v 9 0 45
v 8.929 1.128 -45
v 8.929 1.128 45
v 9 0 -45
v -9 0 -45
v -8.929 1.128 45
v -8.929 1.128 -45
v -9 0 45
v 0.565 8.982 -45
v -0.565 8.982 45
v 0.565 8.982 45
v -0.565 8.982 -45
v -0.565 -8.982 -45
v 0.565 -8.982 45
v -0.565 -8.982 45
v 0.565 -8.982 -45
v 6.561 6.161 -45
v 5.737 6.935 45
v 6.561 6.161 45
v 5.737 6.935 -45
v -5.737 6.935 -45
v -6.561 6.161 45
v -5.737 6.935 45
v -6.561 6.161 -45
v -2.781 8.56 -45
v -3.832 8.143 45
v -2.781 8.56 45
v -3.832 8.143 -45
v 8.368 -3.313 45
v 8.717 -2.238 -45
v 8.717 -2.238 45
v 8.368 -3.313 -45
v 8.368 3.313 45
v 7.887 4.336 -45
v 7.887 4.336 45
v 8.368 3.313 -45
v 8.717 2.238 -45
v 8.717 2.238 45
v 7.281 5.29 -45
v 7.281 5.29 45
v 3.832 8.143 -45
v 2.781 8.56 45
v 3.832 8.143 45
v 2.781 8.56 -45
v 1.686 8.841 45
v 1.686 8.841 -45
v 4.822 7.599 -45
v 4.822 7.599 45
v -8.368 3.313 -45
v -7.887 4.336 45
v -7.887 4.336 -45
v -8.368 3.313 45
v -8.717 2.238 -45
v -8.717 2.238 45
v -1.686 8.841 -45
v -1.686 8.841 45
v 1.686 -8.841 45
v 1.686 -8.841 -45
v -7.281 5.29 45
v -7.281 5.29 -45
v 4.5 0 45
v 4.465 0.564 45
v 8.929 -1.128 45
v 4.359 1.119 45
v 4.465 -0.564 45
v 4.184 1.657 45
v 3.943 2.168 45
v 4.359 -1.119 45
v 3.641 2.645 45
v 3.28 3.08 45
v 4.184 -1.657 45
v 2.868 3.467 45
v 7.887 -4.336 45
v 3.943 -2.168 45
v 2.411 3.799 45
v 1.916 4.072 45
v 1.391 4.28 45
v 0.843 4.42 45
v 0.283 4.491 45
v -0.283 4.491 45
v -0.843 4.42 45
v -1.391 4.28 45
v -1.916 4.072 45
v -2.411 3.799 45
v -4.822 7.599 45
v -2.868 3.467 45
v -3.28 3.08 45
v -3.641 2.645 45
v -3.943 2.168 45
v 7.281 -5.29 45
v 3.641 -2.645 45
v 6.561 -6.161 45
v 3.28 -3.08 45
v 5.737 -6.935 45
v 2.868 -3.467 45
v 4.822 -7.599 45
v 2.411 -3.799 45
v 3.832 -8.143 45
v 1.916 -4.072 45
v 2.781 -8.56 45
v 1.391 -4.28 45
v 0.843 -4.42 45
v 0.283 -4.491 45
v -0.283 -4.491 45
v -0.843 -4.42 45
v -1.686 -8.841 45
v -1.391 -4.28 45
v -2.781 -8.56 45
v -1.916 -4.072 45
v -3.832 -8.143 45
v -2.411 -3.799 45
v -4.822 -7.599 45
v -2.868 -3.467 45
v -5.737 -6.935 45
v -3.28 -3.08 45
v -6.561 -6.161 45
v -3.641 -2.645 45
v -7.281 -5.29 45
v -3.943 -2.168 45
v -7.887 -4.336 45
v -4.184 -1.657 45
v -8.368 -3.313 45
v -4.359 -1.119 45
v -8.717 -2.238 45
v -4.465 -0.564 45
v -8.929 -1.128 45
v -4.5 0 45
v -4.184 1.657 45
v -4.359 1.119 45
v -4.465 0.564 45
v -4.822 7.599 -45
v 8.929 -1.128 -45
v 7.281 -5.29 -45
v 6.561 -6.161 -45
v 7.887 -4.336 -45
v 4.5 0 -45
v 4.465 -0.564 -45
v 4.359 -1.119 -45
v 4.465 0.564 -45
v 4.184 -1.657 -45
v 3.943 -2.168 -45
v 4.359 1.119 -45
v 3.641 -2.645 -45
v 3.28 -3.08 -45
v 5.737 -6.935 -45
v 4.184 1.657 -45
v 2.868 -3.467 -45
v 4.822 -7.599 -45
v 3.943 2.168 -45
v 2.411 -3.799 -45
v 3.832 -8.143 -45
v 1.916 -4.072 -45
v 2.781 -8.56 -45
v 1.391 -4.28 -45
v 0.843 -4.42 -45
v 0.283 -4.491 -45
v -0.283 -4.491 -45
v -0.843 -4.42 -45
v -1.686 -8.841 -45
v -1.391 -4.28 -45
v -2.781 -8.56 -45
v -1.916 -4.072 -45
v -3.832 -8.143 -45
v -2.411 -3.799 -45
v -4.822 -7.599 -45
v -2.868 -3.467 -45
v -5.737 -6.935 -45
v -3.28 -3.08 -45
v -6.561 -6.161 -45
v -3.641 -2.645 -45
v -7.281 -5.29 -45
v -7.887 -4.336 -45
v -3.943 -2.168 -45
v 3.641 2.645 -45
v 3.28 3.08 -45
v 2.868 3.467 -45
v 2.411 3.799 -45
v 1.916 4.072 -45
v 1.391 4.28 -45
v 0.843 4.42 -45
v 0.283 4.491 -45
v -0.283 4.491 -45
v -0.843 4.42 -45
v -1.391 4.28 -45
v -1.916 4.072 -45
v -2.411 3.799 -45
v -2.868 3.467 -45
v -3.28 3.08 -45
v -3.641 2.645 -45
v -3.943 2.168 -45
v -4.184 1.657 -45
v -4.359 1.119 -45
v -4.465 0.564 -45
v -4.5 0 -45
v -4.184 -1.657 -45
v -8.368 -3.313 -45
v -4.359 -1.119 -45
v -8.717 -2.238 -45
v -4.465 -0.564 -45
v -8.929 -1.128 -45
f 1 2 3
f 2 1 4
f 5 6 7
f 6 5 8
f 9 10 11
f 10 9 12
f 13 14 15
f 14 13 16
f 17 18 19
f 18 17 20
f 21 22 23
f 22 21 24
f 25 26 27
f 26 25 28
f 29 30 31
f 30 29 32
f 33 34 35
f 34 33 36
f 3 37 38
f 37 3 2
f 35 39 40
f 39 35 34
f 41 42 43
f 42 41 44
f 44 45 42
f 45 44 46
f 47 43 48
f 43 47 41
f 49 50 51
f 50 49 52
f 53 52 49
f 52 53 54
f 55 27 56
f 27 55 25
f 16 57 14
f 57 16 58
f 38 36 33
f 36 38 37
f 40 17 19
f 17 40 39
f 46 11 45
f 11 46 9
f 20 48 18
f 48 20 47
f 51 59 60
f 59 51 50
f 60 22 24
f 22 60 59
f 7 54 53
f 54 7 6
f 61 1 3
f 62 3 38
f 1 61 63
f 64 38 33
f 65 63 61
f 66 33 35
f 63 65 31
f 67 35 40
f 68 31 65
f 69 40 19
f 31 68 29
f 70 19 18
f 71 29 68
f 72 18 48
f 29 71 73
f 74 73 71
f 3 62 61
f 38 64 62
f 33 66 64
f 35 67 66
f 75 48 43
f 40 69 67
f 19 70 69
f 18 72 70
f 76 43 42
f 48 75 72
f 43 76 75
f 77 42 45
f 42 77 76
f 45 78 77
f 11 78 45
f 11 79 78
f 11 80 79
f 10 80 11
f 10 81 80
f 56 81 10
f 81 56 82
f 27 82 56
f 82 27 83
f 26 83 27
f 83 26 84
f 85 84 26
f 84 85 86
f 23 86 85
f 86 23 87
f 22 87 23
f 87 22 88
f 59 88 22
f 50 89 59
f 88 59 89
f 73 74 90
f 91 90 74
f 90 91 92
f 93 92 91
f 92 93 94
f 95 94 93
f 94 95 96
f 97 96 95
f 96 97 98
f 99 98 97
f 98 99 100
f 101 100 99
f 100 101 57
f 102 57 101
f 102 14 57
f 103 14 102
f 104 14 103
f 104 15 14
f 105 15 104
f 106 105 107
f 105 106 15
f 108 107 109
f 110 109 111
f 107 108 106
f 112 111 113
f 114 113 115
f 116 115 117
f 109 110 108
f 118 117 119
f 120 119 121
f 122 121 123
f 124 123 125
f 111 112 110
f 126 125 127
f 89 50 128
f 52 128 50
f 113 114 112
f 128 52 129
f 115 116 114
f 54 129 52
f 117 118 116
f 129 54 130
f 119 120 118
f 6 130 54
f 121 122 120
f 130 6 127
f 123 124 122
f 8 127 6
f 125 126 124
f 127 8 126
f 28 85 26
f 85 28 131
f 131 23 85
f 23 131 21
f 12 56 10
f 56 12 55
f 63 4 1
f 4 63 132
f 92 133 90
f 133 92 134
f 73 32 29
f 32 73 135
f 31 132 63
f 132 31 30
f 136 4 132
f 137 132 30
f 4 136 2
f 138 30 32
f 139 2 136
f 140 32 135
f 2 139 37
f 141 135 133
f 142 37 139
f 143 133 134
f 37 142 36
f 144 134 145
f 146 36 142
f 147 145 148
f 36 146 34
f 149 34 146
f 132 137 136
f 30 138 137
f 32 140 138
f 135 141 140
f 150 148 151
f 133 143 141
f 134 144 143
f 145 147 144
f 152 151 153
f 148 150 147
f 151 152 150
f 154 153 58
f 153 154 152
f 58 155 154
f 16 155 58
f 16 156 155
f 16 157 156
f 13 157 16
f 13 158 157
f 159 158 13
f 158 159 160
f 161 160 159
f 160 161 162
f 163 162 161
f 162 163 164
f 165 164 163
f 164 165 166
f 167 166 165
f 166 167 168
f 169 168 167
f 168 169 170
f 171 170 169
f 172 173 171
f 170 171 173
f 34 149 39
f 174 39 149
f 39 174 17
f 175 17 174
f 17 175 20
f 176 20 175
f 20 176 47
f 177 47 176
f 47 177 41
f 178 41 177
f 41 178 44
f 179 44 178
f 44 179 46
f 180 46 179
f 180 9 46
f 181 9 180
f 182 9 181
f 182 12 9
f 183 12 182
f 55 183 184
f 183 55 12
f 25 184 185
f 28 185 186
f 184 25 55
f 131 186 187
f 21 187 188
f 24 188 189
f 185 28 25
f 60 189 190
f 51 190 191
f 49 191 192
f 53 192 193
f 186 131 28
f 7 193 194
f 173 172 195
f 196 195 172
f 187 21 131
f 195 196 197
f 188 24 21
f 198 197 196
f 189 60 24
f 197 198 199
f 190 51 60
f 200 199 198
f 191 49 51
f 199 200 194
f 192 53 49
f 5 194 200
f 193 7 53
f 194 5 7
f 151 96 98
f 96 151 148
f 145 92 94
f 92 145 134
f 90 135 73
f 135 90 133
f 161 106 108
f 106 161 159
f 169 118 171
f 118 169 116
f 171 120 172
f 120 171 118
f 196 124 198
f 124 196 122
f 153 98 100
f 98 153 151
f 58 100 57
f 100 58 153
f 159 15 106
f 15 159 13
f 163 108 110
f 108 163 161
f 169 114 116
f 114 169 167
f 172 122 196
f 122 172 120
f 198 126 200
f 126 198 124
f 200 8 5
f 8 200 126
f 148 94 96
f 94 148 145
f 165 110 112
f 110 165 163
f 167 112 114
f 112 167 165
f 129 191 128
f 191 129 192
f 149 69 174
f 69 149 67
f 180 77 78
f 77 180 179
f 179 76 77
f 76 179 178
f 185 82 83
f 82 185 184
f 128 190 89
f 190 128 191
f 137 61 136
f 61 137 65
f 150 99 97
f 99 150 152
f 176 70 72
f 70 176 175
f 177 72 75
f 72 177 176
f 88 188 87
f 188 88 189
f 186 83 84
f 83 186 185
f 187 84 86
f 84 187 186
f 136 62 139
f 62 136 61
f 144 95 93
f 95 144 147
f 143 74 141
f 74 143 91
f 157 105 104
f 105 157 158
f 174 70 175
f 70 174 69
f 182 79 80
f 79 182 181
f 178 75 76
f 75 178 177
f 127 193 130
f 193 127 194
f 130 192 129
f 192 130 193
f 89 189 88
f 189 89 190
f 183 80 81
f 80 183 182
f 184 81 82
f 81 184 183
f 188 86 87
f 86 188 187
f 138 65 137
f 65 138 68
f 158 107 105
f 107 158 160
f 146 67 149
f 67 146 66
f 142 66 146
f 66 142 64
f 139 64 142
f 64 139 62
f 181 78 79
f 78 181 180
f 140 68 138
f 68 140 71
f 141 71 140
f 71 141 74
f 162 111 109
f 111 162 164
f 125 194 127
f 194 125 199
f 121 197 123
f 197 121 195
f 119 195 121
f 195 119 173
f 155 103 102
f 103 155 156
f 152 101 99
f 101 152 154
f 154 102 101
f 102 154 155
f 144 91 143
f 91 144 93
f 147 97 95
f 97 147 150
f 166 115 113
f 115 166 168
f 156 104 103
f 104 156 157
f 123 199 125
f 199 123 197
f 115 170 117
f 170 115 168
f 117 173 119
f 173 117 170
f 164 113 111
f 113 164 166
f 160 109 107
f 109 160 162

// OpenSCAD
$fn = 50;


difference() {
	union() {
		translate(v = [0, 0, -45.0000000000]) {
			cylinder(h = 90, r = 9.0000000000);
		}
	}
	union() {
		translate(v = [0, 0, -100.0000000000]) {
			cylinder(h = 200, r = 4.5000000000);
		}
	}
}
